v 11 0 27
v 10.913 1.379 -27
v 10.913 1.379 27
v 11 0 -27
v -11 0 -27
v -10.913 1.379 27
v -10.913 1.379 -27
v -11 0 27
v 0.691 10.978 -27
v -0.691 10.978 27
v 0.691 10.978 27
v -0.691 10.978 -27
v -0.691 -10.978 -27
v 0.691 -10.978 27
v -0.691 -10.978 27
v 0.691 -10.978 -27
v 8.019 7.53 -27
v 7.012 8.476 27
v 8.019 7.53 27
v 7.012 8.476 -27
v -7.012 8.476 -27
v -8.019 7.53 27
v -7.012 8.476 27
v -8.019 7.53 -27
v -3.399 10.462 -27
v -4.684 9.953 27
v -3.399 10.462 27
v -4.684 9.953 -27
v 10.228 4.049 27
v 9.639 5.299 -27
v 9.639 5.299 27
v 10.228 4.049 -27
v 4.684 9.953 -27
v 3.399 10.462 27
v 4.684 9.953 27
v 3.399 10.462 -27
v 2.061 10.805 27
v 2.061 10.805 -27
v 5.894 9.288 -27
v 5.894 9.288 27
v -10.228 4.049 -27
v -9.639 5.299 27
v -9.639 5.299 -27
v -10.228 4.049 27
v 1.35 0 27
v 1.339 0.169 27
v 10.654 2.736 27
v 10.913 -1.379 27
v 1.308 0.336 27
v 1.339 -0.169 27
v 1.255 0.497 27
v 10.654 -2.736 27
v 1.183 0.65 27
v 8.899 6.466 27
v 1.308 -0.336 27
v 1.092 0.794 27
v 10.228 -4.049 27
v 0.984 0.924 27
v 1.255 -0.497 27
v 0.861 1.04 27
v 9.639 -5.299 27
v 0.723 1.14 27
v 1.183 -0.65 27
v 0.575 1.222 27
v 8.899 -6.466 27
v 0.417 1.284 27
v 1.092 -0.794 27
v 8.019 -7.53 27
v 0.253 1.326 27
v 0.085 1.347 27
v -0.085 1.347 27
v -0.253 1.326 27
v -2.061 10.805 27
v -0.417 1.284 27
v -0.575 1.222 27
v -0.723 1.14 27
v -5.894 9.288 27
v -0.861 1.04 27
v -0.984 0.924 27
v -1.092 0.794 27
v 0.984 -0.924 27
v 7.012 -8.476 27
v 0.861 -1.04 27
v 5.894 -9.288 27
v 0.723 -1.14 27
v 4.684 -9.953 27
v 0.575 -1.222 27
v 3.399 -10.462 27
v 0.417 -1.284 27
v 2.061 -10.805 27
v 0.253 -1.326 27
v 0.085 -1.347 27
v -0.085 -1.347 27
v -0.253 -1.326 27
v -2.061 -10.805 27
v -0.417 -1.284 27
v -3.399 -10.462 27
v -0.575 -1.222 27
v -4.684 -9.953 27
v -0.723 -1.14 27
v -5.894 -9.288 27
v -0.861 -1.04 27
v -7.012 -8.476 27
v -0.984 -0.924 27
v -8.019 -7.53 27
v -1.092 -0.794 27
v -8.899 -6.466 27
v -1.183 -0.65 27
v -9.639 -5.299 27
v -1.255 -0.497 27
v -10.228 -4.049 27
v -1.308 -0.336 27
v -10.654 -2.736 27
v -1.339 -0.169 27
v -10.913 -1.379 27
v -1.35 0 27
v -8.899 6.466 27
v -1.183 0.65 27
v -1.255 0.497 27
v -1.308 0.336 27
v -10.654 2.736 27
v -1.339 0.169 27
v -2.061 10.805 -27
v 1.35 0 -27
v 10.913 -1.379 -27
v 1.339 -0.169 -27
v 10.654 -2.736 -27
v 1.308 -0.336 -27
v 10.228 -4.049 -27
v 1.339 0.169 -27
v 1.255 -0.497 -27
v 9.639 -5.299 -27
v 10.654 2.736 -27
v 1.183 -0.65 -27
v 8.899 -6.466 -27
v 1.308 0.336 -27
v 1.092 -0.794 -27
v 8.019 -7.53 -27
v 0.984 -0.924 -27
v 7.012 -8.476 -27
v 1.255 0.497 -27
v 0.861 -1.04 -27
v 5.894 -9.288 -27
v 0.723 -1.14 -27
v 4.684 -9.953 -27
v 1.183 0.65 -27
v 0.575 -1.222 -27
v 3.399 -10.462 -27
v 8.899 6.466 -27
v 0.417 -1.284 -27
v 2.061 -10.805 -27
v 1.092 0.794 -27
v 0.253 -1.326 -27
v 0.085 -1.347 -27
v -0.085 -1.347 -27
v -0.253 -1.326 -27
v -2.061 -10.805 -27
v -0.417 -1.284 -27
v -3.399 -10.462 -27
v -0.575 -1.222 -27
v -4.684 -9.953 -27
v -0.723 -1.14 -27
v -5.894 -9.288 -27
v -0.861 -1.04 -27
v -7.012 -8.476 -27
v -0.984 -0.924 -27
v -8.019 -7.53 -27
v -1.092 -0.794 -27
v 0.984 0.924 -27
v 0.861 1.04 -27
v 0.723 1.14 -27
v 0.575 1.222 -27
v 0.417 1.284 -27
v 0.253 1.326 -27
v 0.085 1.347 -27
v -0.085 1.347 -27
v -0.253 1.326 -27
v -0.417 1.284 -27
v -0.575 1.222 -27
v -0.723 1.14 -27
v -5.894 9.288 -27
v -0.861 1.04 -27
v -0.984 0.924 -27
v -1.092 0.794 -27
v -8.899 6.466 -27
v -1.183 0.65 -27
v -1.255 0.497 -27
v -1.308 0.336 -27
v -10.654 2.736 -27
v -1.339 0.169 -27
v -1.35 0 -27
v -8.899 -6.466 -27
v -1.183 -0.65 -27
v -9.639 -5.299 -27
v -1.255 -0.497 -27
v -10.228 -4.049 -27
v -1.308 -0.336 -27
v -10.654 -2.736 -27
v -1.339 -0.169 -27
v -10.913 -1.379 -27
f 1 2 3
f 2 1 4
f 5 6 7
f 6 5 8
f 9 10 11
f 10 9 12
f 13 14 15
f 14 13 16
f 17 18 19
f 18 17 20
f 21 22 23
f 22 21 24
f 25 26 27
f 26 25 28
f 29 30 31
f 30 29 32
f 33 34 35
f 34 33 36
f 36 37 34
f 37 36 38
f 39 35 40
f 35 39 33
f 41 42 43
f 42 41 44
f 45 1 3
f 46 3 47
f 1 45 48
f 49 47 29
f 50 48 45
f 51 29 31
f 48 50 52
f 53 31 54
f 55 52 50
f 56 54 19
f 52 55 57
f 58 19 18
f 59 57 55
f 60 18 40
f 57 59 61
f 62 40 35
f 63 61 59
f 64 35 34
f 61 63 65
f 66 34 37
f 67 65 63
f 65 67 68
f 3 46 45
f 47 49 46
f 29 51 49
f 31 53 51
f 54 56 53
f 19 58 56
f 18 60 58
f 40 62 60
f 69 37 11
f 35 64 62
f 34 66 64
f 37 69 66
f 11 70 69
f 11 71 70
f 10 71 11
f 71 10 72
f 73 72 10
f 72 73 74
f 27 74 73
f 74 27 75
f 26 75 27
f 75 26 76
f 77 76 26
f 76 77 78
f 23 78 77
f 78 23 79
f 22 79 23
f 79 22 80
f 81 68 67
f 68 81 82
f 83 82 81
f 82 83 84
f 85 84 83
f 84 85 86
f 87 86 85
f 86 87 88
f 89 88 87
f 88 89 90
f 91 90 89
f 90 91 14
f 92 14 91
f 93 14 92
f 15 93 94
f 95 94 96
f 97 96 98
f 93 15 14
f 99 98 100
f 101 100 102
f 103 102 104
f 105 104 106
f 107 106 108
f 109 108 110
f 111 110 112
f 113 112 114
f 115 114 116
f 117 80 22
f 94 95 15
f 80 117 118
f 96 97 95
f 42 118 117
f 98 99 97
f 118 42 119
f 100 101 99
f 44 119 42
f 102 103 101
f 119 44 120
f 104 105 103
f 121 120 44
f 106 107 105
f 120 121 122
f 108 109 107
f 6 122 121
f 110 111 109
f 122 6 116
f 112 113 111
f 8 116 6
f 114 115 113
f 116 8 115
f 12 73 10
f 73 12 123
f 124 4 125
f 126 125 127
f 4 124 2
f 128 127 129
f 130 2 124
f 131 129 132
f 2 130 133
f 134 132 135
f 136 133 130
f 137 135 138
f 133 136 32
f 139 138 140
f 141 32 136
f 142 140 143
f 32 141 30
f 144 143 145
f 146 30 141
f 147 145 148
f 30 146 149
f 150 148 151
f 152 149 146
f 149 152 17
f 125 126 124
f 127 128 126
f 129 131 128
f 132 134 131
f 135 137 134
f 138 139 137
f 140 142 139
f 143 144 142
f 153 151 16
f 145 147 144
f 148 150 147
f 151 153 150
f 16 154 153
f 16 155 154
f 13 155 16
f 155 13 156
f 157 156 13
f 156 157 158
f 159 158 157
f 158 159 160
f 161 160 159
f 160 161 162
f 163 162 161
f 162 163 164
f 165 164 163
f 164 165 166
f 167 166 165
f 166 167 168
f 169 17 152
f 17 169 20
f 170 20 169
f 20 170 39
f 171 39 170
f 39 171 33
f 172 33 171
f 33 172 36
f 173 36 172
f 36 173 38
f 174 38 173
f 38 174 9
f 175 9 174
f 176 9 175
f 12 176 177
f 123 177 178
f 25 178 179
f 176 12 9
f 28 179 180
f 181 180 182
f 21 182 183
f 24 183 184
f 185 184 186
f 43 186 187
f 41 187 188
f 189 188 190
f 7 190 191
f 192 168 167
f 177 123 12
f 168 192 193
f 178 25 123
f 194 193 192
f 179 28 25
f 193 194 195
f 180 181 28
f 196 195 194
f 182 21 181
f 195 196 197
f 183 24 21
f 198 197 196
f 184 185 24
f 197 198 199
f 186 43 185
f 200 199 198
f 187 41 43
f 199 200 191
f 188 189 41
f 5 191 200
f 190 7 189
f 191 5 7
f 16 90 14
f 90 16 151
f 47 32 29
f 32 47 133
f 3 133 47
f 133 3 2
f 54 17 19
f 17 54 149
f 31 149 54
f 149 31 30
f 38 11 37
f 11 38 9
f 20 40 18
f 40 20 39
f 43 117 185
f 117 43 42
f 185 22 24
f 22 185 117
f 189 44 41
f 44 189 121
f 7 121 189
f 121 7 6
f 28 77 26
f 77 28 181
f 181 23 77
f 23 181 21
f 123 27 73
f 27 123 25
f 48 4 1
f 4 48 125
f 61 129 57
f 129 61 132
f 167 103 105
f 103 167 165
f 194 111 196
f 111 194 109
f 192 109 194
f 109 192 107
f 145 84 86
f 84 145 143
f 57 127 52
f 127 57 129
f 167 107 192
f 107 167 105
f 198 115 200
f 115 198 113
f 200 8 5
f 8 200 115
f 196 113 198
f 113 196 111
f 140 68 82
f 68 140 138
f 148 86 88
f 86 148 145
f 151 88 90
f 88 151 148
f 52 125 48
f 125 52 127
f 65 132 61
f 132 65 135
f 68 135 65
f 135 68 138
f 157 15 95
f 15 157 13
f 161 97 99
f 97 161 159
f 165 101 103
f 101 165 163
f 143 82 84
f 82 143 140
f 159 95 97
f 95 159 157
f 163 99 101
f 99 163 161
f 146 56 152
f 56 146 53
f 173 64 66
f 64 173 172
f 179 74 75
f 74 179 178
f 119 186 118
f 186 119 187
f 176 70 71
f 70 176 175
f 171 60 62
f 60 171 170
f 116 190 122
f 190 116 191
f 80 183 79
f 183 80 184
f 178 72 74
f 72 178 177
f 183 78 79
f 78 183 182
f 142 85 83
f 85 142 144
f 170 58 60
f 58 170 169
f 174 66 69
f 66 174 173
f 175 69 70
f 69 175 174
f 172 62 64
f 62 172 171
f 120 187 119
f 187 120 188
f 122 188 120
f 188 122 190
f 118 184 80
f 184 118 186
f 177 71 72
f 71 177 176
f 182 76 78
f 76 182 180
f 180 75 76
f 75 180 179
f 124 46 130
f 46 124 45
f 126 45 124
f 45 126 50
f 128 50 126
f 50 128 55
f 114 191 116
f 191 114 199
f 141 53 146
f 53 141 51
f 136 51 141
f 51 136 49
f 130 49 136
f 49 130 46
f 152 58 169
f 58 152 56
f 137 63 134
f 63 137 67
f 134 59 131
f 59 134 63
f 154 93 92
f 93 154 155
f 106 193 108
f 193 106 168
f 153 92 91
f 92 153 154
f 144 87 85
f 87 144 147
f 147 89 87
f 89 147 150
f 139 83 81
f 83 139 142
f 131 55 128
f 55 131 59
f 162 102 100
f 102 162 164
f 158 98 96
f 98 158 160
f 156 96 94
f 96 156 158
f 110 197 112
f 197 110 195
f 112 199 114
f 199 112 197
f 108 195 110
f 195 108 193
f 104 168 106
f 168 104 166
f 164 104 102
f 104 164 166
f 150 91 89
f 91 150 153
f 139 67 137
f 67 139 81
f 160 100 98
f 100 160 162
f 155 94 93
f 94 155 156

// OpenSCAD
$fn = 50;


difference() {
	union() {
		translate(v = [0, 0, -27.0000000000]) {
			cylinder(h = 54, r = 11.0000000000);
		}
	}
	union() {
		translate(v = [0, 0, -100.0000000000]) {
			cylinder(h = 200, r = 1.3500000000);
		}
	}
}
